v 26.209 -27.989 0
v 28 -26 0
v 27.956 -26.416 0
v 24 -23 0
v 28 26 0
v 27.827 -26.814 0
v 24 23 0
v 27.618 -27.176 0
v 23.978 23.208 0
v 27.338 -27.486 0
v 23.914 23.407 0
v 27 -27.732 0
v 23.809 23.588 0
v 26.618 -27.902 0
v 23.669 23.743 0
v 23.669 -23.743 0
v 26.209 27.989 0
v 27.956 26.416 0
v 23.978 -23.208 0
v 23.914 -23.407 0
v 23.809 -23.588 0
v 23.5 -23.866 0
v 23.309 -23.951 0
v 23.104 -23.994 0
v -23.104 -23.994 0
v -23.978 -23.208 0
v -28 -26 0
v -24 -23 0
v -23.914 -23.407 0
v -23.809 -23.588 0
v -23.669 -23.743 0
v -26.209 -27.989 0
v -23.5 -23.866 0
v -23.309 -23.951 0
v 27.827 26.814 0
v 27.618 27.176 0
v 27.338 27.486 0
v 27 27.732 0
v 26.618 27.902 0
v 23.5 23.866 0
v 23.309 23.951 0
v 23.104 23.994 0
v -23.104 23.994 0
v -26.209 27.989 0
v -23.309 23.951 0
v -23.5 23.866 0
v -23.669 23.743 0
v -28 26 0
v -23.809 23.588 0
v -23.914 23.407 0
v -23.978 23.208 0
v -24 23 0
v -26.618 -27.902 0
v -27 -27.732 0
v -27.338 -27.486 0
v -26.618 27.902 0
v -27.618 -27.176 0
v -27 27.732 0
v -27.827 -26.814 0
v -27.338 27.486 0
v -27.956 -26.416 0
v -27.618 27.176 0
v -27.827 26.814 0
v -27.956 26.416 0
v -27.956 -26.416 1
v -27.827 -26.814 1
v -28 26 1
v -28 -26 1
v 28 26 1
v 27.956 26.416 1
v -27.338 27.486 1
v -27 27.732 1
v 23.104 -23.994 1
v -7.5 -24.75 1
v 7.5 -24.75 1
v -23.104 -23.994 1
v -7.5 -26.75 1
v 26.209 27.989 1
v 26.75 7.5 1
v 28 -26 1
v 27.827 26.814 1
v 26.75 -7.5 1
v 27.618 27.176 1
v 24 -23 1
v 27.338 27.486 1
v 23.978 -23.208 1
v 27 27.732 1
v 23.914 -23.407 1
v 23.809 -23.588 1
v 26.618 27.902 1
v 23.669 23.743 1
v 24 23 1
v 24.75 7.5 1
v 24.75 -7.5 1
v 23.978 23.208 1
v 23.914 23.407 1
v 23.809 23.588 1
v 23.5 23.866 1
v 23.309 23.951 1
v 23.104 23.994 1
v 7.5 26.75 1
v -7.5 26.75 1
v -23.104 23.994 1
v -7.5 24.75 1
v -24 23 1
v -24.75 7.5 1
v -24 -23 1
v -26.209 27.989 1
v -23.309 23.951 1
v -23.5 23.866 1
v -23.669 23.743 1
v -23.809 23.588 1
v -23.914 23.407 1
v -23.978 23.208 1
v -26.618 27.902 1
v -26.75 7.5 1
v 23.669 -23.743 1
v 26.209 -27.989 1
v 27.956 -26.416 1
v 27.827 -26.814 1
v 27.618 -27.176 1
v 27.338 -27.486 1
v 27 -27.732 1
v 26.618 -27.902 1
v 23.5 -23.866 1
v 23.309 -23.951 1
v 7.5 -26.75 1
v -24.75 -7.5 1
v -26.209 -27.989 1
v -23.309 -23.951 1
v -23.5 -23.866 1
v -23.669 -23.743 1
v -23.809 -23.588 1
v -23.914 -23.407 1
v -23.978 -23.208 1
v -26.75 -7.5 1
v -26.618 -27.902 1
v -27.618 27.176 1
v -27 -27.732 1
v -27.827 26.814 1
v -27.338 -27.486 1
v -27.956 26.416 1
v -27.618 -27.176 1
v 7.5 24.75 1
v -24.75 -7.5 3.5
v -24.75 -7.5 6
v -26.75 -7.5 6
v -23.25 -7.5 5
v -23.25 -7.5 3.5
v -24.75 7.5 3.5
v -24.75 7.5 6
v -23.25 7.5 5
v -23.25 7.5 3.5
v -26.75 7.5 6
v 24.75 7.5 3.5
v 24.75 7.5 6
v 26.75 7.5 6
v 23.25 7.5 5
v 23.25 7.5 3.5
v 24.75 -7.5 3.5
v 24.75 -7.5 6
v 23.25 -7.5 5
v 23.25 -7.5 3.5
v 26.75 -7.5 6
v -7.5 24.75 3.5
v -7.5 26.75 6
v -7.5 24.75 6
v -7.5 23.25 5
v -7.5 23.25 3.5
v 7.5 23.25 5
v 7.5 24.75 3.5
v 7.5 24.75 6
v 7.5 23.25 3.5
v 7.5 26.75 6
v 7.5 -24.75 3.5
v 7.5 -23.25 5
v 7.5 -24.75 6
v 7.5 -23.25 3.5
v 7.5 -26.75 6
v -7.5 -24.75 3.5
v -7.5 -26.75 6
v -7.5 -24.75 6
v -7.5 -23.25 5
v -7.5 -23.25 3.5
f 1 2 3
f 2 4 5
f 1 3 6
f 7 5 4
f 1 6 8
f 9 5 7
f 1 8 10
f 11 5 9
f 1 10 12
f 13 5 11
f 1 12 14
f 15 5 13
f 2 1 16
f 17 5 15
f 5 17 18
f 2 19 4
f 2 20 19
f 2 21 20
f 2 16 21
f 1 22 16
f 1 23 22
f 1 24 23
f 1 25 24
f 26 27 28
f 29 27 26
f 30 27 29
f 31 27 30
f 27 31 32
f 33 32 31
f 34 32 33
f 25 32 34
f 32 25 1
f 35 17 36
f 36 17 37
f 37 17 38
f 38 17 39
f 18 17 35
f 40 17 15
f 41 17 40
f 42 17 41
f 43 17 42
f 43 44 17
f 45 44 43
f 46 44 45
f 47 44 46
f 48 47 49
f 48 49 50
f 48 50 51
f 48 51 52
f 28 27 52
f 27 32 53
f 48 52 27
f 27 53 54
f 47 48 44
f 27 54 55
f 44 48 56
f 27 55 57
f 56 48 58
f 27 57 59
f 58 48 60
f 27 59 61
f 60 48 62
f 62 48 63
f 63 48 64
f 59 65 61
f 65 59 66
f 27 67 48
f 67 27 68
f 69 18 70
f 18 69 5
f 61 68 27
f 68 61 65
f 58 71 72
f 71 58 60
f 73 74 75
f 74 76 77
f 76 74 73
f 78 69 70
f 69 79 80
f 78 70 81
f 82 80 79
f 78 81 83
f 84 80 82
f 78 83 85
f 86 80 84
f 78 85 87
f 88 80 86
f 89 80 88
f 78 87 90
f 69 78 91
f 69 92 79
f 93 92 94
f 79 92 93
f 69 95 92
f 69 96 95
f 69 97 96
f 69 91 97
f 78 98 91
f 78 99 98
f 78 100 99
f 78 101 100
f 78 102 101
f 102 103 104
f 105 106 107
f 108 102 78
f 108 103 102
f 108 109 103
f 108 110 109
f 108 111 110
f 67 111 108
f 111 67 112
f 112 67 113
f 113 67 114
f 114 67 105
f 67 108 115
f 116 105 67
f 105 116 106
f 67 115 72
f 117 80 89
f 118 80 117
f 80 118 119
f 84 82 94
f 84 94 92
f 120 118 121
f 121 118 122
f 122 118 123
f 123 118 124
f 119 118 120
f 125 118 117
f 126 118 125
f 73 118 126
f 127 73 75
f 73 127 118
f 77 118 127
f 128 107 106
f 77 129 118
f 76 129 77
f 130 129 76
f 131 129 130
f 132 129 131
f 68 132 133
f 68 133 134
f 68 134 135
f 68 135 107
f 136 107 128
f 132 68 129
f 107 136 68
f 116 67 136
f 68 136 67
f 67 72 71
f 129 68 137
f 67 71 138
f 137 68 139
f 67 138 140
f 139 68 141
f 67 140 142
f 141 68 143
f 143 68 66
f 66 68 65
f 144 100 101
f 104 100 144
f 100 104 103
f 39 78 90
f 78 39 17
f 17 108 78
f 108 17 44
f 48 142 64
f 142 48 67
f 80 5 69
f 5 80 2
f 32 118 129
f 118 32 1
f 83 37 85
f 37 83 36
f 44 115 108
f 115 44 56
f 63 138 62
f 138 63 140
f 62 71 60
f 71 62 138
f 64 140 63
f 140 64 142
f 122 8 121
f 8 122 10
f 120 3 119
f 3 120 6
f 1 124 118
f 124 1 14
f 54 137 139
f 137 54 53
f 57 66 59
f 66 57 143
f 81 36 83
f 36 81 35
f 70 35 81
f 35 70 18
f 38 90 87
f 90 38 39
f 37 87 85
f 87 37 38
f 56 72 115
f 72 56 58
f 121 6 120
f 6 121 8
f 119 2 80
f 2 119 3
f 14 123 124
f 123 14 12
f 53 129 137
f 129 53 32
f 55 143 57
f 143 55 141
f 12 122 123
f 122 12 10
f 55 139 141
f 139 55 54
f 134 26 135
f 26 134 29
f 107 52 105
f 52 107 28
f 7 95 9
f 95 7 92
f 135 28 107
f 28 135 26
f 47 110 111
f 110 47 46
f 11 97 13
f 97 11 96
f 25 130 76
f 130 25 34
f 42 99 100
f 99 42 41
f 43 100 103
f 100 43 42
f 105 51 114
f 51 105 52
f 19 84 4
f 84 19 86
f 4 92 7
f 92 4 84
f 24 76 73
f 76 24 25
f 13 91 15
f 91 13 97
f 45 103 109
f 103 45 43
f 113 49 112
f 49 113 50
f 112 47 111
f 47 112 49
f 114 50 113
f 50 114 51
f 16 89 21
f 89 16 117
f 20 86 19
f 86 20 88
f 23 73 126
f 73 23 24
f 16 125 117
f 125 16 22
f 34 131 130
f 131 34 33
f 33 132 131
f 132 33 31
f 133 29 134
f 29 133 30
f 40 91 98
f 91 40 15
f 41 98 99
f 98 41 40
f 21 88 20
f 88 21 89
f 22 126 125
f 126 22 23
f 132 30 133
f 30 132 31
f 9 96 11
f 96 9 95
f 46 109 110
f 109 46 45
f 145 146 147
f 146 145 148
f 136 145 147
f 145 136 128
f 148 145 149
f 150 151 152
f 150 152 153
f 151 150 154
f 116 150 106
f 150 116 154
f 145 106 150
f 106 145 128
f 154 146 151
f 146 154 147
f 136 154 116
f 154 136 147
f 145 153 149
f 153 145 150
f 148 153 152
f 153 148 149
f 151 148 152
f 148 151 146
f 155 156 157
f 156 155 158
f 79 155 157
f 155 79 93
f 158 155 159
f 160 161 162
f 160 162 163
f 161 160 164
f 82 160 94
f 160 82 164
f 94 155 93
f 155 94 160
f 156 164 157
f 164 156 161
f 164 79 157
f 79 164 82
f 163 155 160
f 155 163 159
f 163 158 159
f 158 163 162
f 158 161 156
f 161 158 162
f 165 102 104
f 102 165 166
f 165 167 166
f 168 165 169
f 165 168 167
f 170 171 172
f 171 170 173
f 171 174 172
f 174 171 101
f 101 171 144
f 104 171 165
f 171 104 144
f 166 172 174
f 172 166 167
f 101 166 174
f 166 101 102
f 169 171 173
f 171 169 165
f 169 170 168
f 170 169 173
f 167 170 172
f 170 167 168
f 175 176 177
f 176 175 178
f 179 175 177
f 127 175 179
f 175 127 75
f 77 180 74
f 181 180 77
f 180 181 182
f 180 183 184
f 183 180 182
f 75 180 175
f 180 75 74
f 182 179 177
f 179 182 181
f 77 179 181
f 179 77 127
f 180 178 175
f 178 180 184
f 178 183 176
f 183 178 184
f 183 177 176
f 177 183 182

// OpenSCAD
$fn = 30; 

switch_width = 48;
switch_height = 48;
switch_outer_width = 49.5;
switch_outer_height = 49.5;
switch_radius = 1;
as500_cover_inner_width = 56.0;
as500_cover_inner_height = 56.0;
as500_cover_inner_radius = 2;
thickness=1;

// Modul für das abgerundete Viereck
module rounded_rectangle(w, h, r, t) {
    linear_extrude(height = t)
    hull() {
        // Vier Kreise an den Ecken
        translate([r, r, 0])
            circle(r);
        translate([w-r, r, 0])
            circle(r);
        translate([w-r, h-r, 0])
            circle(r);
        translate([r, h-r, 0])
            circle(r);
    }
}

module clip() {
    
    cube([15, 2, 5]);
    
    points = [
        [0.5, 0],
        [3, 0],
        [2, 1.5],
        [0.5, 1.5]
    ];

    translate([0, 2, 3])
    rotate([0, 90, 0])
    linear_extrude(height=15)
    polygon(points);

}

difference() {
    translate([- as500_cover_inner_width / 2, - as500_cover_inner_height / 2, 0])
    rounded_rectangle(as500_cover_inner_width, as500_cover_inner_width, as500_cover_inner_radius, thickness);
    color("red")
    translate([- switch_width / 2, - switch_height / 2, -1])
    rounded_rectangle(switch_width, switch_height, switch_radius, thickness + 2);
}

translate([-switch_outer_width / 2 - 2, -7.5, 6])
rotate([0, 180, 270])
clip();

translate([switch_outer_width / 2 + 2, 7.5, 6])
rotate([0, 180, 90])
clip();

translate([-7.5, switch_outer_height / 2 + 2, 6])
rotate([0, 180, 180])
clip();

translate([7.5, -switch_outer_height / 2 - 2, 6])
rotate([0, 180, 0])
clip();
